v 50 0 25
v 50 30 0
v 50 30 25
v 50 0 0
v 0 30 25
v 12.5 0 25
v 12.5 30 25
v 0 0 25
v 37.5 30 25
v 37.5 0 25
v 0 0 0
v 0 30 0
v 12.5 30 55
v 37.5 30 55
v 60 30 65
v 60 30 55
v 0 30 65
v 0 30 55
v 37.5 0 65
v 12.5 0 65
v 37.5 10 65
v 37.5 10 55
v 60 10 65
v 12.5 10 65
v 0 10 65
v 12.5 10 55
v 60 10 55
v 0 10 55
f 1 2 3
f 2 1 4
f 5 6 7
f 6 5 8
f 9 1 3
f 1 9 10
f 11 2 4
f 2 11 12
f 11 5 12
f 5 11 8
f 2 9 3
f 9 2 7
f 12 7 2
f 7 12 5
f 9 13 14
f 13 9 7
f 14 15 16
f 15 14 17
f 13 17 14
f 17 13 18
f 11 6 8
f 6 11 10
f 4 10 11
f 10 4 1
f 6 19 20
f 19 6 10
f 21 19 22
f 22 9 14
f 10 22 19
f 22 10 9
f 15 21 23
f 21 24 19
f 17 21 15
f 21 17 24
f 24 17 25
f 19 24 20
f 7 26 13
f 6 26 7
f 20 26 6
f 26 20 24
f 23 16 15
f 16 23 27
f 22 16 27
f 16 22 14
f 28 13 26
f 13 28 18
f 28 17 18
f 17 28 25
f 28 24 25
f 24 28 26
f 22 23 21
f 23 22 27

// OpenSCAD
// Base block dimensions
base_block_width = 50;
base_block_depth = 30;
base_block_height = 25; // Increased height to match the original model

// Vertical arm dimensions
vertical_arm_width = 25; // Adjusted width to match the original model
vertical_arm_depth = 30;
vertical_arm_height = 40;

// Horizontal arm dimensions
horizontal_arm_width = 60; // Extended length to match the original model
horizontal_arm_depth = 20;
horizontal_arm_height = 10;

// Base block
module base_block() {
    cube([base_block_width, base_block_depth, base_block_height]);
}

// Vertical arm
module vertical_arm() {
    translate([12.5, 0, base_block_height]) // Centered on top of the base block
    cube([vertical_arm_width, vertical_arm_depth, vertical_arm_height]);
}

// Horizontal arm
module horizontal_arm() {
    translate([0, 10, base_block_height + vertical_arm_height - horizontal_arm_height]) // Lowered position to align with the original model
    cube([horizontal_arm_width, horizontal_arm_depth, horizontal_arm_height]);
}

// Assemble the model
module flexible_coupling() {
    base_block();
    vertical_arm();
    horizontal_arm();
}

// Render the model
flexible_coupling();
